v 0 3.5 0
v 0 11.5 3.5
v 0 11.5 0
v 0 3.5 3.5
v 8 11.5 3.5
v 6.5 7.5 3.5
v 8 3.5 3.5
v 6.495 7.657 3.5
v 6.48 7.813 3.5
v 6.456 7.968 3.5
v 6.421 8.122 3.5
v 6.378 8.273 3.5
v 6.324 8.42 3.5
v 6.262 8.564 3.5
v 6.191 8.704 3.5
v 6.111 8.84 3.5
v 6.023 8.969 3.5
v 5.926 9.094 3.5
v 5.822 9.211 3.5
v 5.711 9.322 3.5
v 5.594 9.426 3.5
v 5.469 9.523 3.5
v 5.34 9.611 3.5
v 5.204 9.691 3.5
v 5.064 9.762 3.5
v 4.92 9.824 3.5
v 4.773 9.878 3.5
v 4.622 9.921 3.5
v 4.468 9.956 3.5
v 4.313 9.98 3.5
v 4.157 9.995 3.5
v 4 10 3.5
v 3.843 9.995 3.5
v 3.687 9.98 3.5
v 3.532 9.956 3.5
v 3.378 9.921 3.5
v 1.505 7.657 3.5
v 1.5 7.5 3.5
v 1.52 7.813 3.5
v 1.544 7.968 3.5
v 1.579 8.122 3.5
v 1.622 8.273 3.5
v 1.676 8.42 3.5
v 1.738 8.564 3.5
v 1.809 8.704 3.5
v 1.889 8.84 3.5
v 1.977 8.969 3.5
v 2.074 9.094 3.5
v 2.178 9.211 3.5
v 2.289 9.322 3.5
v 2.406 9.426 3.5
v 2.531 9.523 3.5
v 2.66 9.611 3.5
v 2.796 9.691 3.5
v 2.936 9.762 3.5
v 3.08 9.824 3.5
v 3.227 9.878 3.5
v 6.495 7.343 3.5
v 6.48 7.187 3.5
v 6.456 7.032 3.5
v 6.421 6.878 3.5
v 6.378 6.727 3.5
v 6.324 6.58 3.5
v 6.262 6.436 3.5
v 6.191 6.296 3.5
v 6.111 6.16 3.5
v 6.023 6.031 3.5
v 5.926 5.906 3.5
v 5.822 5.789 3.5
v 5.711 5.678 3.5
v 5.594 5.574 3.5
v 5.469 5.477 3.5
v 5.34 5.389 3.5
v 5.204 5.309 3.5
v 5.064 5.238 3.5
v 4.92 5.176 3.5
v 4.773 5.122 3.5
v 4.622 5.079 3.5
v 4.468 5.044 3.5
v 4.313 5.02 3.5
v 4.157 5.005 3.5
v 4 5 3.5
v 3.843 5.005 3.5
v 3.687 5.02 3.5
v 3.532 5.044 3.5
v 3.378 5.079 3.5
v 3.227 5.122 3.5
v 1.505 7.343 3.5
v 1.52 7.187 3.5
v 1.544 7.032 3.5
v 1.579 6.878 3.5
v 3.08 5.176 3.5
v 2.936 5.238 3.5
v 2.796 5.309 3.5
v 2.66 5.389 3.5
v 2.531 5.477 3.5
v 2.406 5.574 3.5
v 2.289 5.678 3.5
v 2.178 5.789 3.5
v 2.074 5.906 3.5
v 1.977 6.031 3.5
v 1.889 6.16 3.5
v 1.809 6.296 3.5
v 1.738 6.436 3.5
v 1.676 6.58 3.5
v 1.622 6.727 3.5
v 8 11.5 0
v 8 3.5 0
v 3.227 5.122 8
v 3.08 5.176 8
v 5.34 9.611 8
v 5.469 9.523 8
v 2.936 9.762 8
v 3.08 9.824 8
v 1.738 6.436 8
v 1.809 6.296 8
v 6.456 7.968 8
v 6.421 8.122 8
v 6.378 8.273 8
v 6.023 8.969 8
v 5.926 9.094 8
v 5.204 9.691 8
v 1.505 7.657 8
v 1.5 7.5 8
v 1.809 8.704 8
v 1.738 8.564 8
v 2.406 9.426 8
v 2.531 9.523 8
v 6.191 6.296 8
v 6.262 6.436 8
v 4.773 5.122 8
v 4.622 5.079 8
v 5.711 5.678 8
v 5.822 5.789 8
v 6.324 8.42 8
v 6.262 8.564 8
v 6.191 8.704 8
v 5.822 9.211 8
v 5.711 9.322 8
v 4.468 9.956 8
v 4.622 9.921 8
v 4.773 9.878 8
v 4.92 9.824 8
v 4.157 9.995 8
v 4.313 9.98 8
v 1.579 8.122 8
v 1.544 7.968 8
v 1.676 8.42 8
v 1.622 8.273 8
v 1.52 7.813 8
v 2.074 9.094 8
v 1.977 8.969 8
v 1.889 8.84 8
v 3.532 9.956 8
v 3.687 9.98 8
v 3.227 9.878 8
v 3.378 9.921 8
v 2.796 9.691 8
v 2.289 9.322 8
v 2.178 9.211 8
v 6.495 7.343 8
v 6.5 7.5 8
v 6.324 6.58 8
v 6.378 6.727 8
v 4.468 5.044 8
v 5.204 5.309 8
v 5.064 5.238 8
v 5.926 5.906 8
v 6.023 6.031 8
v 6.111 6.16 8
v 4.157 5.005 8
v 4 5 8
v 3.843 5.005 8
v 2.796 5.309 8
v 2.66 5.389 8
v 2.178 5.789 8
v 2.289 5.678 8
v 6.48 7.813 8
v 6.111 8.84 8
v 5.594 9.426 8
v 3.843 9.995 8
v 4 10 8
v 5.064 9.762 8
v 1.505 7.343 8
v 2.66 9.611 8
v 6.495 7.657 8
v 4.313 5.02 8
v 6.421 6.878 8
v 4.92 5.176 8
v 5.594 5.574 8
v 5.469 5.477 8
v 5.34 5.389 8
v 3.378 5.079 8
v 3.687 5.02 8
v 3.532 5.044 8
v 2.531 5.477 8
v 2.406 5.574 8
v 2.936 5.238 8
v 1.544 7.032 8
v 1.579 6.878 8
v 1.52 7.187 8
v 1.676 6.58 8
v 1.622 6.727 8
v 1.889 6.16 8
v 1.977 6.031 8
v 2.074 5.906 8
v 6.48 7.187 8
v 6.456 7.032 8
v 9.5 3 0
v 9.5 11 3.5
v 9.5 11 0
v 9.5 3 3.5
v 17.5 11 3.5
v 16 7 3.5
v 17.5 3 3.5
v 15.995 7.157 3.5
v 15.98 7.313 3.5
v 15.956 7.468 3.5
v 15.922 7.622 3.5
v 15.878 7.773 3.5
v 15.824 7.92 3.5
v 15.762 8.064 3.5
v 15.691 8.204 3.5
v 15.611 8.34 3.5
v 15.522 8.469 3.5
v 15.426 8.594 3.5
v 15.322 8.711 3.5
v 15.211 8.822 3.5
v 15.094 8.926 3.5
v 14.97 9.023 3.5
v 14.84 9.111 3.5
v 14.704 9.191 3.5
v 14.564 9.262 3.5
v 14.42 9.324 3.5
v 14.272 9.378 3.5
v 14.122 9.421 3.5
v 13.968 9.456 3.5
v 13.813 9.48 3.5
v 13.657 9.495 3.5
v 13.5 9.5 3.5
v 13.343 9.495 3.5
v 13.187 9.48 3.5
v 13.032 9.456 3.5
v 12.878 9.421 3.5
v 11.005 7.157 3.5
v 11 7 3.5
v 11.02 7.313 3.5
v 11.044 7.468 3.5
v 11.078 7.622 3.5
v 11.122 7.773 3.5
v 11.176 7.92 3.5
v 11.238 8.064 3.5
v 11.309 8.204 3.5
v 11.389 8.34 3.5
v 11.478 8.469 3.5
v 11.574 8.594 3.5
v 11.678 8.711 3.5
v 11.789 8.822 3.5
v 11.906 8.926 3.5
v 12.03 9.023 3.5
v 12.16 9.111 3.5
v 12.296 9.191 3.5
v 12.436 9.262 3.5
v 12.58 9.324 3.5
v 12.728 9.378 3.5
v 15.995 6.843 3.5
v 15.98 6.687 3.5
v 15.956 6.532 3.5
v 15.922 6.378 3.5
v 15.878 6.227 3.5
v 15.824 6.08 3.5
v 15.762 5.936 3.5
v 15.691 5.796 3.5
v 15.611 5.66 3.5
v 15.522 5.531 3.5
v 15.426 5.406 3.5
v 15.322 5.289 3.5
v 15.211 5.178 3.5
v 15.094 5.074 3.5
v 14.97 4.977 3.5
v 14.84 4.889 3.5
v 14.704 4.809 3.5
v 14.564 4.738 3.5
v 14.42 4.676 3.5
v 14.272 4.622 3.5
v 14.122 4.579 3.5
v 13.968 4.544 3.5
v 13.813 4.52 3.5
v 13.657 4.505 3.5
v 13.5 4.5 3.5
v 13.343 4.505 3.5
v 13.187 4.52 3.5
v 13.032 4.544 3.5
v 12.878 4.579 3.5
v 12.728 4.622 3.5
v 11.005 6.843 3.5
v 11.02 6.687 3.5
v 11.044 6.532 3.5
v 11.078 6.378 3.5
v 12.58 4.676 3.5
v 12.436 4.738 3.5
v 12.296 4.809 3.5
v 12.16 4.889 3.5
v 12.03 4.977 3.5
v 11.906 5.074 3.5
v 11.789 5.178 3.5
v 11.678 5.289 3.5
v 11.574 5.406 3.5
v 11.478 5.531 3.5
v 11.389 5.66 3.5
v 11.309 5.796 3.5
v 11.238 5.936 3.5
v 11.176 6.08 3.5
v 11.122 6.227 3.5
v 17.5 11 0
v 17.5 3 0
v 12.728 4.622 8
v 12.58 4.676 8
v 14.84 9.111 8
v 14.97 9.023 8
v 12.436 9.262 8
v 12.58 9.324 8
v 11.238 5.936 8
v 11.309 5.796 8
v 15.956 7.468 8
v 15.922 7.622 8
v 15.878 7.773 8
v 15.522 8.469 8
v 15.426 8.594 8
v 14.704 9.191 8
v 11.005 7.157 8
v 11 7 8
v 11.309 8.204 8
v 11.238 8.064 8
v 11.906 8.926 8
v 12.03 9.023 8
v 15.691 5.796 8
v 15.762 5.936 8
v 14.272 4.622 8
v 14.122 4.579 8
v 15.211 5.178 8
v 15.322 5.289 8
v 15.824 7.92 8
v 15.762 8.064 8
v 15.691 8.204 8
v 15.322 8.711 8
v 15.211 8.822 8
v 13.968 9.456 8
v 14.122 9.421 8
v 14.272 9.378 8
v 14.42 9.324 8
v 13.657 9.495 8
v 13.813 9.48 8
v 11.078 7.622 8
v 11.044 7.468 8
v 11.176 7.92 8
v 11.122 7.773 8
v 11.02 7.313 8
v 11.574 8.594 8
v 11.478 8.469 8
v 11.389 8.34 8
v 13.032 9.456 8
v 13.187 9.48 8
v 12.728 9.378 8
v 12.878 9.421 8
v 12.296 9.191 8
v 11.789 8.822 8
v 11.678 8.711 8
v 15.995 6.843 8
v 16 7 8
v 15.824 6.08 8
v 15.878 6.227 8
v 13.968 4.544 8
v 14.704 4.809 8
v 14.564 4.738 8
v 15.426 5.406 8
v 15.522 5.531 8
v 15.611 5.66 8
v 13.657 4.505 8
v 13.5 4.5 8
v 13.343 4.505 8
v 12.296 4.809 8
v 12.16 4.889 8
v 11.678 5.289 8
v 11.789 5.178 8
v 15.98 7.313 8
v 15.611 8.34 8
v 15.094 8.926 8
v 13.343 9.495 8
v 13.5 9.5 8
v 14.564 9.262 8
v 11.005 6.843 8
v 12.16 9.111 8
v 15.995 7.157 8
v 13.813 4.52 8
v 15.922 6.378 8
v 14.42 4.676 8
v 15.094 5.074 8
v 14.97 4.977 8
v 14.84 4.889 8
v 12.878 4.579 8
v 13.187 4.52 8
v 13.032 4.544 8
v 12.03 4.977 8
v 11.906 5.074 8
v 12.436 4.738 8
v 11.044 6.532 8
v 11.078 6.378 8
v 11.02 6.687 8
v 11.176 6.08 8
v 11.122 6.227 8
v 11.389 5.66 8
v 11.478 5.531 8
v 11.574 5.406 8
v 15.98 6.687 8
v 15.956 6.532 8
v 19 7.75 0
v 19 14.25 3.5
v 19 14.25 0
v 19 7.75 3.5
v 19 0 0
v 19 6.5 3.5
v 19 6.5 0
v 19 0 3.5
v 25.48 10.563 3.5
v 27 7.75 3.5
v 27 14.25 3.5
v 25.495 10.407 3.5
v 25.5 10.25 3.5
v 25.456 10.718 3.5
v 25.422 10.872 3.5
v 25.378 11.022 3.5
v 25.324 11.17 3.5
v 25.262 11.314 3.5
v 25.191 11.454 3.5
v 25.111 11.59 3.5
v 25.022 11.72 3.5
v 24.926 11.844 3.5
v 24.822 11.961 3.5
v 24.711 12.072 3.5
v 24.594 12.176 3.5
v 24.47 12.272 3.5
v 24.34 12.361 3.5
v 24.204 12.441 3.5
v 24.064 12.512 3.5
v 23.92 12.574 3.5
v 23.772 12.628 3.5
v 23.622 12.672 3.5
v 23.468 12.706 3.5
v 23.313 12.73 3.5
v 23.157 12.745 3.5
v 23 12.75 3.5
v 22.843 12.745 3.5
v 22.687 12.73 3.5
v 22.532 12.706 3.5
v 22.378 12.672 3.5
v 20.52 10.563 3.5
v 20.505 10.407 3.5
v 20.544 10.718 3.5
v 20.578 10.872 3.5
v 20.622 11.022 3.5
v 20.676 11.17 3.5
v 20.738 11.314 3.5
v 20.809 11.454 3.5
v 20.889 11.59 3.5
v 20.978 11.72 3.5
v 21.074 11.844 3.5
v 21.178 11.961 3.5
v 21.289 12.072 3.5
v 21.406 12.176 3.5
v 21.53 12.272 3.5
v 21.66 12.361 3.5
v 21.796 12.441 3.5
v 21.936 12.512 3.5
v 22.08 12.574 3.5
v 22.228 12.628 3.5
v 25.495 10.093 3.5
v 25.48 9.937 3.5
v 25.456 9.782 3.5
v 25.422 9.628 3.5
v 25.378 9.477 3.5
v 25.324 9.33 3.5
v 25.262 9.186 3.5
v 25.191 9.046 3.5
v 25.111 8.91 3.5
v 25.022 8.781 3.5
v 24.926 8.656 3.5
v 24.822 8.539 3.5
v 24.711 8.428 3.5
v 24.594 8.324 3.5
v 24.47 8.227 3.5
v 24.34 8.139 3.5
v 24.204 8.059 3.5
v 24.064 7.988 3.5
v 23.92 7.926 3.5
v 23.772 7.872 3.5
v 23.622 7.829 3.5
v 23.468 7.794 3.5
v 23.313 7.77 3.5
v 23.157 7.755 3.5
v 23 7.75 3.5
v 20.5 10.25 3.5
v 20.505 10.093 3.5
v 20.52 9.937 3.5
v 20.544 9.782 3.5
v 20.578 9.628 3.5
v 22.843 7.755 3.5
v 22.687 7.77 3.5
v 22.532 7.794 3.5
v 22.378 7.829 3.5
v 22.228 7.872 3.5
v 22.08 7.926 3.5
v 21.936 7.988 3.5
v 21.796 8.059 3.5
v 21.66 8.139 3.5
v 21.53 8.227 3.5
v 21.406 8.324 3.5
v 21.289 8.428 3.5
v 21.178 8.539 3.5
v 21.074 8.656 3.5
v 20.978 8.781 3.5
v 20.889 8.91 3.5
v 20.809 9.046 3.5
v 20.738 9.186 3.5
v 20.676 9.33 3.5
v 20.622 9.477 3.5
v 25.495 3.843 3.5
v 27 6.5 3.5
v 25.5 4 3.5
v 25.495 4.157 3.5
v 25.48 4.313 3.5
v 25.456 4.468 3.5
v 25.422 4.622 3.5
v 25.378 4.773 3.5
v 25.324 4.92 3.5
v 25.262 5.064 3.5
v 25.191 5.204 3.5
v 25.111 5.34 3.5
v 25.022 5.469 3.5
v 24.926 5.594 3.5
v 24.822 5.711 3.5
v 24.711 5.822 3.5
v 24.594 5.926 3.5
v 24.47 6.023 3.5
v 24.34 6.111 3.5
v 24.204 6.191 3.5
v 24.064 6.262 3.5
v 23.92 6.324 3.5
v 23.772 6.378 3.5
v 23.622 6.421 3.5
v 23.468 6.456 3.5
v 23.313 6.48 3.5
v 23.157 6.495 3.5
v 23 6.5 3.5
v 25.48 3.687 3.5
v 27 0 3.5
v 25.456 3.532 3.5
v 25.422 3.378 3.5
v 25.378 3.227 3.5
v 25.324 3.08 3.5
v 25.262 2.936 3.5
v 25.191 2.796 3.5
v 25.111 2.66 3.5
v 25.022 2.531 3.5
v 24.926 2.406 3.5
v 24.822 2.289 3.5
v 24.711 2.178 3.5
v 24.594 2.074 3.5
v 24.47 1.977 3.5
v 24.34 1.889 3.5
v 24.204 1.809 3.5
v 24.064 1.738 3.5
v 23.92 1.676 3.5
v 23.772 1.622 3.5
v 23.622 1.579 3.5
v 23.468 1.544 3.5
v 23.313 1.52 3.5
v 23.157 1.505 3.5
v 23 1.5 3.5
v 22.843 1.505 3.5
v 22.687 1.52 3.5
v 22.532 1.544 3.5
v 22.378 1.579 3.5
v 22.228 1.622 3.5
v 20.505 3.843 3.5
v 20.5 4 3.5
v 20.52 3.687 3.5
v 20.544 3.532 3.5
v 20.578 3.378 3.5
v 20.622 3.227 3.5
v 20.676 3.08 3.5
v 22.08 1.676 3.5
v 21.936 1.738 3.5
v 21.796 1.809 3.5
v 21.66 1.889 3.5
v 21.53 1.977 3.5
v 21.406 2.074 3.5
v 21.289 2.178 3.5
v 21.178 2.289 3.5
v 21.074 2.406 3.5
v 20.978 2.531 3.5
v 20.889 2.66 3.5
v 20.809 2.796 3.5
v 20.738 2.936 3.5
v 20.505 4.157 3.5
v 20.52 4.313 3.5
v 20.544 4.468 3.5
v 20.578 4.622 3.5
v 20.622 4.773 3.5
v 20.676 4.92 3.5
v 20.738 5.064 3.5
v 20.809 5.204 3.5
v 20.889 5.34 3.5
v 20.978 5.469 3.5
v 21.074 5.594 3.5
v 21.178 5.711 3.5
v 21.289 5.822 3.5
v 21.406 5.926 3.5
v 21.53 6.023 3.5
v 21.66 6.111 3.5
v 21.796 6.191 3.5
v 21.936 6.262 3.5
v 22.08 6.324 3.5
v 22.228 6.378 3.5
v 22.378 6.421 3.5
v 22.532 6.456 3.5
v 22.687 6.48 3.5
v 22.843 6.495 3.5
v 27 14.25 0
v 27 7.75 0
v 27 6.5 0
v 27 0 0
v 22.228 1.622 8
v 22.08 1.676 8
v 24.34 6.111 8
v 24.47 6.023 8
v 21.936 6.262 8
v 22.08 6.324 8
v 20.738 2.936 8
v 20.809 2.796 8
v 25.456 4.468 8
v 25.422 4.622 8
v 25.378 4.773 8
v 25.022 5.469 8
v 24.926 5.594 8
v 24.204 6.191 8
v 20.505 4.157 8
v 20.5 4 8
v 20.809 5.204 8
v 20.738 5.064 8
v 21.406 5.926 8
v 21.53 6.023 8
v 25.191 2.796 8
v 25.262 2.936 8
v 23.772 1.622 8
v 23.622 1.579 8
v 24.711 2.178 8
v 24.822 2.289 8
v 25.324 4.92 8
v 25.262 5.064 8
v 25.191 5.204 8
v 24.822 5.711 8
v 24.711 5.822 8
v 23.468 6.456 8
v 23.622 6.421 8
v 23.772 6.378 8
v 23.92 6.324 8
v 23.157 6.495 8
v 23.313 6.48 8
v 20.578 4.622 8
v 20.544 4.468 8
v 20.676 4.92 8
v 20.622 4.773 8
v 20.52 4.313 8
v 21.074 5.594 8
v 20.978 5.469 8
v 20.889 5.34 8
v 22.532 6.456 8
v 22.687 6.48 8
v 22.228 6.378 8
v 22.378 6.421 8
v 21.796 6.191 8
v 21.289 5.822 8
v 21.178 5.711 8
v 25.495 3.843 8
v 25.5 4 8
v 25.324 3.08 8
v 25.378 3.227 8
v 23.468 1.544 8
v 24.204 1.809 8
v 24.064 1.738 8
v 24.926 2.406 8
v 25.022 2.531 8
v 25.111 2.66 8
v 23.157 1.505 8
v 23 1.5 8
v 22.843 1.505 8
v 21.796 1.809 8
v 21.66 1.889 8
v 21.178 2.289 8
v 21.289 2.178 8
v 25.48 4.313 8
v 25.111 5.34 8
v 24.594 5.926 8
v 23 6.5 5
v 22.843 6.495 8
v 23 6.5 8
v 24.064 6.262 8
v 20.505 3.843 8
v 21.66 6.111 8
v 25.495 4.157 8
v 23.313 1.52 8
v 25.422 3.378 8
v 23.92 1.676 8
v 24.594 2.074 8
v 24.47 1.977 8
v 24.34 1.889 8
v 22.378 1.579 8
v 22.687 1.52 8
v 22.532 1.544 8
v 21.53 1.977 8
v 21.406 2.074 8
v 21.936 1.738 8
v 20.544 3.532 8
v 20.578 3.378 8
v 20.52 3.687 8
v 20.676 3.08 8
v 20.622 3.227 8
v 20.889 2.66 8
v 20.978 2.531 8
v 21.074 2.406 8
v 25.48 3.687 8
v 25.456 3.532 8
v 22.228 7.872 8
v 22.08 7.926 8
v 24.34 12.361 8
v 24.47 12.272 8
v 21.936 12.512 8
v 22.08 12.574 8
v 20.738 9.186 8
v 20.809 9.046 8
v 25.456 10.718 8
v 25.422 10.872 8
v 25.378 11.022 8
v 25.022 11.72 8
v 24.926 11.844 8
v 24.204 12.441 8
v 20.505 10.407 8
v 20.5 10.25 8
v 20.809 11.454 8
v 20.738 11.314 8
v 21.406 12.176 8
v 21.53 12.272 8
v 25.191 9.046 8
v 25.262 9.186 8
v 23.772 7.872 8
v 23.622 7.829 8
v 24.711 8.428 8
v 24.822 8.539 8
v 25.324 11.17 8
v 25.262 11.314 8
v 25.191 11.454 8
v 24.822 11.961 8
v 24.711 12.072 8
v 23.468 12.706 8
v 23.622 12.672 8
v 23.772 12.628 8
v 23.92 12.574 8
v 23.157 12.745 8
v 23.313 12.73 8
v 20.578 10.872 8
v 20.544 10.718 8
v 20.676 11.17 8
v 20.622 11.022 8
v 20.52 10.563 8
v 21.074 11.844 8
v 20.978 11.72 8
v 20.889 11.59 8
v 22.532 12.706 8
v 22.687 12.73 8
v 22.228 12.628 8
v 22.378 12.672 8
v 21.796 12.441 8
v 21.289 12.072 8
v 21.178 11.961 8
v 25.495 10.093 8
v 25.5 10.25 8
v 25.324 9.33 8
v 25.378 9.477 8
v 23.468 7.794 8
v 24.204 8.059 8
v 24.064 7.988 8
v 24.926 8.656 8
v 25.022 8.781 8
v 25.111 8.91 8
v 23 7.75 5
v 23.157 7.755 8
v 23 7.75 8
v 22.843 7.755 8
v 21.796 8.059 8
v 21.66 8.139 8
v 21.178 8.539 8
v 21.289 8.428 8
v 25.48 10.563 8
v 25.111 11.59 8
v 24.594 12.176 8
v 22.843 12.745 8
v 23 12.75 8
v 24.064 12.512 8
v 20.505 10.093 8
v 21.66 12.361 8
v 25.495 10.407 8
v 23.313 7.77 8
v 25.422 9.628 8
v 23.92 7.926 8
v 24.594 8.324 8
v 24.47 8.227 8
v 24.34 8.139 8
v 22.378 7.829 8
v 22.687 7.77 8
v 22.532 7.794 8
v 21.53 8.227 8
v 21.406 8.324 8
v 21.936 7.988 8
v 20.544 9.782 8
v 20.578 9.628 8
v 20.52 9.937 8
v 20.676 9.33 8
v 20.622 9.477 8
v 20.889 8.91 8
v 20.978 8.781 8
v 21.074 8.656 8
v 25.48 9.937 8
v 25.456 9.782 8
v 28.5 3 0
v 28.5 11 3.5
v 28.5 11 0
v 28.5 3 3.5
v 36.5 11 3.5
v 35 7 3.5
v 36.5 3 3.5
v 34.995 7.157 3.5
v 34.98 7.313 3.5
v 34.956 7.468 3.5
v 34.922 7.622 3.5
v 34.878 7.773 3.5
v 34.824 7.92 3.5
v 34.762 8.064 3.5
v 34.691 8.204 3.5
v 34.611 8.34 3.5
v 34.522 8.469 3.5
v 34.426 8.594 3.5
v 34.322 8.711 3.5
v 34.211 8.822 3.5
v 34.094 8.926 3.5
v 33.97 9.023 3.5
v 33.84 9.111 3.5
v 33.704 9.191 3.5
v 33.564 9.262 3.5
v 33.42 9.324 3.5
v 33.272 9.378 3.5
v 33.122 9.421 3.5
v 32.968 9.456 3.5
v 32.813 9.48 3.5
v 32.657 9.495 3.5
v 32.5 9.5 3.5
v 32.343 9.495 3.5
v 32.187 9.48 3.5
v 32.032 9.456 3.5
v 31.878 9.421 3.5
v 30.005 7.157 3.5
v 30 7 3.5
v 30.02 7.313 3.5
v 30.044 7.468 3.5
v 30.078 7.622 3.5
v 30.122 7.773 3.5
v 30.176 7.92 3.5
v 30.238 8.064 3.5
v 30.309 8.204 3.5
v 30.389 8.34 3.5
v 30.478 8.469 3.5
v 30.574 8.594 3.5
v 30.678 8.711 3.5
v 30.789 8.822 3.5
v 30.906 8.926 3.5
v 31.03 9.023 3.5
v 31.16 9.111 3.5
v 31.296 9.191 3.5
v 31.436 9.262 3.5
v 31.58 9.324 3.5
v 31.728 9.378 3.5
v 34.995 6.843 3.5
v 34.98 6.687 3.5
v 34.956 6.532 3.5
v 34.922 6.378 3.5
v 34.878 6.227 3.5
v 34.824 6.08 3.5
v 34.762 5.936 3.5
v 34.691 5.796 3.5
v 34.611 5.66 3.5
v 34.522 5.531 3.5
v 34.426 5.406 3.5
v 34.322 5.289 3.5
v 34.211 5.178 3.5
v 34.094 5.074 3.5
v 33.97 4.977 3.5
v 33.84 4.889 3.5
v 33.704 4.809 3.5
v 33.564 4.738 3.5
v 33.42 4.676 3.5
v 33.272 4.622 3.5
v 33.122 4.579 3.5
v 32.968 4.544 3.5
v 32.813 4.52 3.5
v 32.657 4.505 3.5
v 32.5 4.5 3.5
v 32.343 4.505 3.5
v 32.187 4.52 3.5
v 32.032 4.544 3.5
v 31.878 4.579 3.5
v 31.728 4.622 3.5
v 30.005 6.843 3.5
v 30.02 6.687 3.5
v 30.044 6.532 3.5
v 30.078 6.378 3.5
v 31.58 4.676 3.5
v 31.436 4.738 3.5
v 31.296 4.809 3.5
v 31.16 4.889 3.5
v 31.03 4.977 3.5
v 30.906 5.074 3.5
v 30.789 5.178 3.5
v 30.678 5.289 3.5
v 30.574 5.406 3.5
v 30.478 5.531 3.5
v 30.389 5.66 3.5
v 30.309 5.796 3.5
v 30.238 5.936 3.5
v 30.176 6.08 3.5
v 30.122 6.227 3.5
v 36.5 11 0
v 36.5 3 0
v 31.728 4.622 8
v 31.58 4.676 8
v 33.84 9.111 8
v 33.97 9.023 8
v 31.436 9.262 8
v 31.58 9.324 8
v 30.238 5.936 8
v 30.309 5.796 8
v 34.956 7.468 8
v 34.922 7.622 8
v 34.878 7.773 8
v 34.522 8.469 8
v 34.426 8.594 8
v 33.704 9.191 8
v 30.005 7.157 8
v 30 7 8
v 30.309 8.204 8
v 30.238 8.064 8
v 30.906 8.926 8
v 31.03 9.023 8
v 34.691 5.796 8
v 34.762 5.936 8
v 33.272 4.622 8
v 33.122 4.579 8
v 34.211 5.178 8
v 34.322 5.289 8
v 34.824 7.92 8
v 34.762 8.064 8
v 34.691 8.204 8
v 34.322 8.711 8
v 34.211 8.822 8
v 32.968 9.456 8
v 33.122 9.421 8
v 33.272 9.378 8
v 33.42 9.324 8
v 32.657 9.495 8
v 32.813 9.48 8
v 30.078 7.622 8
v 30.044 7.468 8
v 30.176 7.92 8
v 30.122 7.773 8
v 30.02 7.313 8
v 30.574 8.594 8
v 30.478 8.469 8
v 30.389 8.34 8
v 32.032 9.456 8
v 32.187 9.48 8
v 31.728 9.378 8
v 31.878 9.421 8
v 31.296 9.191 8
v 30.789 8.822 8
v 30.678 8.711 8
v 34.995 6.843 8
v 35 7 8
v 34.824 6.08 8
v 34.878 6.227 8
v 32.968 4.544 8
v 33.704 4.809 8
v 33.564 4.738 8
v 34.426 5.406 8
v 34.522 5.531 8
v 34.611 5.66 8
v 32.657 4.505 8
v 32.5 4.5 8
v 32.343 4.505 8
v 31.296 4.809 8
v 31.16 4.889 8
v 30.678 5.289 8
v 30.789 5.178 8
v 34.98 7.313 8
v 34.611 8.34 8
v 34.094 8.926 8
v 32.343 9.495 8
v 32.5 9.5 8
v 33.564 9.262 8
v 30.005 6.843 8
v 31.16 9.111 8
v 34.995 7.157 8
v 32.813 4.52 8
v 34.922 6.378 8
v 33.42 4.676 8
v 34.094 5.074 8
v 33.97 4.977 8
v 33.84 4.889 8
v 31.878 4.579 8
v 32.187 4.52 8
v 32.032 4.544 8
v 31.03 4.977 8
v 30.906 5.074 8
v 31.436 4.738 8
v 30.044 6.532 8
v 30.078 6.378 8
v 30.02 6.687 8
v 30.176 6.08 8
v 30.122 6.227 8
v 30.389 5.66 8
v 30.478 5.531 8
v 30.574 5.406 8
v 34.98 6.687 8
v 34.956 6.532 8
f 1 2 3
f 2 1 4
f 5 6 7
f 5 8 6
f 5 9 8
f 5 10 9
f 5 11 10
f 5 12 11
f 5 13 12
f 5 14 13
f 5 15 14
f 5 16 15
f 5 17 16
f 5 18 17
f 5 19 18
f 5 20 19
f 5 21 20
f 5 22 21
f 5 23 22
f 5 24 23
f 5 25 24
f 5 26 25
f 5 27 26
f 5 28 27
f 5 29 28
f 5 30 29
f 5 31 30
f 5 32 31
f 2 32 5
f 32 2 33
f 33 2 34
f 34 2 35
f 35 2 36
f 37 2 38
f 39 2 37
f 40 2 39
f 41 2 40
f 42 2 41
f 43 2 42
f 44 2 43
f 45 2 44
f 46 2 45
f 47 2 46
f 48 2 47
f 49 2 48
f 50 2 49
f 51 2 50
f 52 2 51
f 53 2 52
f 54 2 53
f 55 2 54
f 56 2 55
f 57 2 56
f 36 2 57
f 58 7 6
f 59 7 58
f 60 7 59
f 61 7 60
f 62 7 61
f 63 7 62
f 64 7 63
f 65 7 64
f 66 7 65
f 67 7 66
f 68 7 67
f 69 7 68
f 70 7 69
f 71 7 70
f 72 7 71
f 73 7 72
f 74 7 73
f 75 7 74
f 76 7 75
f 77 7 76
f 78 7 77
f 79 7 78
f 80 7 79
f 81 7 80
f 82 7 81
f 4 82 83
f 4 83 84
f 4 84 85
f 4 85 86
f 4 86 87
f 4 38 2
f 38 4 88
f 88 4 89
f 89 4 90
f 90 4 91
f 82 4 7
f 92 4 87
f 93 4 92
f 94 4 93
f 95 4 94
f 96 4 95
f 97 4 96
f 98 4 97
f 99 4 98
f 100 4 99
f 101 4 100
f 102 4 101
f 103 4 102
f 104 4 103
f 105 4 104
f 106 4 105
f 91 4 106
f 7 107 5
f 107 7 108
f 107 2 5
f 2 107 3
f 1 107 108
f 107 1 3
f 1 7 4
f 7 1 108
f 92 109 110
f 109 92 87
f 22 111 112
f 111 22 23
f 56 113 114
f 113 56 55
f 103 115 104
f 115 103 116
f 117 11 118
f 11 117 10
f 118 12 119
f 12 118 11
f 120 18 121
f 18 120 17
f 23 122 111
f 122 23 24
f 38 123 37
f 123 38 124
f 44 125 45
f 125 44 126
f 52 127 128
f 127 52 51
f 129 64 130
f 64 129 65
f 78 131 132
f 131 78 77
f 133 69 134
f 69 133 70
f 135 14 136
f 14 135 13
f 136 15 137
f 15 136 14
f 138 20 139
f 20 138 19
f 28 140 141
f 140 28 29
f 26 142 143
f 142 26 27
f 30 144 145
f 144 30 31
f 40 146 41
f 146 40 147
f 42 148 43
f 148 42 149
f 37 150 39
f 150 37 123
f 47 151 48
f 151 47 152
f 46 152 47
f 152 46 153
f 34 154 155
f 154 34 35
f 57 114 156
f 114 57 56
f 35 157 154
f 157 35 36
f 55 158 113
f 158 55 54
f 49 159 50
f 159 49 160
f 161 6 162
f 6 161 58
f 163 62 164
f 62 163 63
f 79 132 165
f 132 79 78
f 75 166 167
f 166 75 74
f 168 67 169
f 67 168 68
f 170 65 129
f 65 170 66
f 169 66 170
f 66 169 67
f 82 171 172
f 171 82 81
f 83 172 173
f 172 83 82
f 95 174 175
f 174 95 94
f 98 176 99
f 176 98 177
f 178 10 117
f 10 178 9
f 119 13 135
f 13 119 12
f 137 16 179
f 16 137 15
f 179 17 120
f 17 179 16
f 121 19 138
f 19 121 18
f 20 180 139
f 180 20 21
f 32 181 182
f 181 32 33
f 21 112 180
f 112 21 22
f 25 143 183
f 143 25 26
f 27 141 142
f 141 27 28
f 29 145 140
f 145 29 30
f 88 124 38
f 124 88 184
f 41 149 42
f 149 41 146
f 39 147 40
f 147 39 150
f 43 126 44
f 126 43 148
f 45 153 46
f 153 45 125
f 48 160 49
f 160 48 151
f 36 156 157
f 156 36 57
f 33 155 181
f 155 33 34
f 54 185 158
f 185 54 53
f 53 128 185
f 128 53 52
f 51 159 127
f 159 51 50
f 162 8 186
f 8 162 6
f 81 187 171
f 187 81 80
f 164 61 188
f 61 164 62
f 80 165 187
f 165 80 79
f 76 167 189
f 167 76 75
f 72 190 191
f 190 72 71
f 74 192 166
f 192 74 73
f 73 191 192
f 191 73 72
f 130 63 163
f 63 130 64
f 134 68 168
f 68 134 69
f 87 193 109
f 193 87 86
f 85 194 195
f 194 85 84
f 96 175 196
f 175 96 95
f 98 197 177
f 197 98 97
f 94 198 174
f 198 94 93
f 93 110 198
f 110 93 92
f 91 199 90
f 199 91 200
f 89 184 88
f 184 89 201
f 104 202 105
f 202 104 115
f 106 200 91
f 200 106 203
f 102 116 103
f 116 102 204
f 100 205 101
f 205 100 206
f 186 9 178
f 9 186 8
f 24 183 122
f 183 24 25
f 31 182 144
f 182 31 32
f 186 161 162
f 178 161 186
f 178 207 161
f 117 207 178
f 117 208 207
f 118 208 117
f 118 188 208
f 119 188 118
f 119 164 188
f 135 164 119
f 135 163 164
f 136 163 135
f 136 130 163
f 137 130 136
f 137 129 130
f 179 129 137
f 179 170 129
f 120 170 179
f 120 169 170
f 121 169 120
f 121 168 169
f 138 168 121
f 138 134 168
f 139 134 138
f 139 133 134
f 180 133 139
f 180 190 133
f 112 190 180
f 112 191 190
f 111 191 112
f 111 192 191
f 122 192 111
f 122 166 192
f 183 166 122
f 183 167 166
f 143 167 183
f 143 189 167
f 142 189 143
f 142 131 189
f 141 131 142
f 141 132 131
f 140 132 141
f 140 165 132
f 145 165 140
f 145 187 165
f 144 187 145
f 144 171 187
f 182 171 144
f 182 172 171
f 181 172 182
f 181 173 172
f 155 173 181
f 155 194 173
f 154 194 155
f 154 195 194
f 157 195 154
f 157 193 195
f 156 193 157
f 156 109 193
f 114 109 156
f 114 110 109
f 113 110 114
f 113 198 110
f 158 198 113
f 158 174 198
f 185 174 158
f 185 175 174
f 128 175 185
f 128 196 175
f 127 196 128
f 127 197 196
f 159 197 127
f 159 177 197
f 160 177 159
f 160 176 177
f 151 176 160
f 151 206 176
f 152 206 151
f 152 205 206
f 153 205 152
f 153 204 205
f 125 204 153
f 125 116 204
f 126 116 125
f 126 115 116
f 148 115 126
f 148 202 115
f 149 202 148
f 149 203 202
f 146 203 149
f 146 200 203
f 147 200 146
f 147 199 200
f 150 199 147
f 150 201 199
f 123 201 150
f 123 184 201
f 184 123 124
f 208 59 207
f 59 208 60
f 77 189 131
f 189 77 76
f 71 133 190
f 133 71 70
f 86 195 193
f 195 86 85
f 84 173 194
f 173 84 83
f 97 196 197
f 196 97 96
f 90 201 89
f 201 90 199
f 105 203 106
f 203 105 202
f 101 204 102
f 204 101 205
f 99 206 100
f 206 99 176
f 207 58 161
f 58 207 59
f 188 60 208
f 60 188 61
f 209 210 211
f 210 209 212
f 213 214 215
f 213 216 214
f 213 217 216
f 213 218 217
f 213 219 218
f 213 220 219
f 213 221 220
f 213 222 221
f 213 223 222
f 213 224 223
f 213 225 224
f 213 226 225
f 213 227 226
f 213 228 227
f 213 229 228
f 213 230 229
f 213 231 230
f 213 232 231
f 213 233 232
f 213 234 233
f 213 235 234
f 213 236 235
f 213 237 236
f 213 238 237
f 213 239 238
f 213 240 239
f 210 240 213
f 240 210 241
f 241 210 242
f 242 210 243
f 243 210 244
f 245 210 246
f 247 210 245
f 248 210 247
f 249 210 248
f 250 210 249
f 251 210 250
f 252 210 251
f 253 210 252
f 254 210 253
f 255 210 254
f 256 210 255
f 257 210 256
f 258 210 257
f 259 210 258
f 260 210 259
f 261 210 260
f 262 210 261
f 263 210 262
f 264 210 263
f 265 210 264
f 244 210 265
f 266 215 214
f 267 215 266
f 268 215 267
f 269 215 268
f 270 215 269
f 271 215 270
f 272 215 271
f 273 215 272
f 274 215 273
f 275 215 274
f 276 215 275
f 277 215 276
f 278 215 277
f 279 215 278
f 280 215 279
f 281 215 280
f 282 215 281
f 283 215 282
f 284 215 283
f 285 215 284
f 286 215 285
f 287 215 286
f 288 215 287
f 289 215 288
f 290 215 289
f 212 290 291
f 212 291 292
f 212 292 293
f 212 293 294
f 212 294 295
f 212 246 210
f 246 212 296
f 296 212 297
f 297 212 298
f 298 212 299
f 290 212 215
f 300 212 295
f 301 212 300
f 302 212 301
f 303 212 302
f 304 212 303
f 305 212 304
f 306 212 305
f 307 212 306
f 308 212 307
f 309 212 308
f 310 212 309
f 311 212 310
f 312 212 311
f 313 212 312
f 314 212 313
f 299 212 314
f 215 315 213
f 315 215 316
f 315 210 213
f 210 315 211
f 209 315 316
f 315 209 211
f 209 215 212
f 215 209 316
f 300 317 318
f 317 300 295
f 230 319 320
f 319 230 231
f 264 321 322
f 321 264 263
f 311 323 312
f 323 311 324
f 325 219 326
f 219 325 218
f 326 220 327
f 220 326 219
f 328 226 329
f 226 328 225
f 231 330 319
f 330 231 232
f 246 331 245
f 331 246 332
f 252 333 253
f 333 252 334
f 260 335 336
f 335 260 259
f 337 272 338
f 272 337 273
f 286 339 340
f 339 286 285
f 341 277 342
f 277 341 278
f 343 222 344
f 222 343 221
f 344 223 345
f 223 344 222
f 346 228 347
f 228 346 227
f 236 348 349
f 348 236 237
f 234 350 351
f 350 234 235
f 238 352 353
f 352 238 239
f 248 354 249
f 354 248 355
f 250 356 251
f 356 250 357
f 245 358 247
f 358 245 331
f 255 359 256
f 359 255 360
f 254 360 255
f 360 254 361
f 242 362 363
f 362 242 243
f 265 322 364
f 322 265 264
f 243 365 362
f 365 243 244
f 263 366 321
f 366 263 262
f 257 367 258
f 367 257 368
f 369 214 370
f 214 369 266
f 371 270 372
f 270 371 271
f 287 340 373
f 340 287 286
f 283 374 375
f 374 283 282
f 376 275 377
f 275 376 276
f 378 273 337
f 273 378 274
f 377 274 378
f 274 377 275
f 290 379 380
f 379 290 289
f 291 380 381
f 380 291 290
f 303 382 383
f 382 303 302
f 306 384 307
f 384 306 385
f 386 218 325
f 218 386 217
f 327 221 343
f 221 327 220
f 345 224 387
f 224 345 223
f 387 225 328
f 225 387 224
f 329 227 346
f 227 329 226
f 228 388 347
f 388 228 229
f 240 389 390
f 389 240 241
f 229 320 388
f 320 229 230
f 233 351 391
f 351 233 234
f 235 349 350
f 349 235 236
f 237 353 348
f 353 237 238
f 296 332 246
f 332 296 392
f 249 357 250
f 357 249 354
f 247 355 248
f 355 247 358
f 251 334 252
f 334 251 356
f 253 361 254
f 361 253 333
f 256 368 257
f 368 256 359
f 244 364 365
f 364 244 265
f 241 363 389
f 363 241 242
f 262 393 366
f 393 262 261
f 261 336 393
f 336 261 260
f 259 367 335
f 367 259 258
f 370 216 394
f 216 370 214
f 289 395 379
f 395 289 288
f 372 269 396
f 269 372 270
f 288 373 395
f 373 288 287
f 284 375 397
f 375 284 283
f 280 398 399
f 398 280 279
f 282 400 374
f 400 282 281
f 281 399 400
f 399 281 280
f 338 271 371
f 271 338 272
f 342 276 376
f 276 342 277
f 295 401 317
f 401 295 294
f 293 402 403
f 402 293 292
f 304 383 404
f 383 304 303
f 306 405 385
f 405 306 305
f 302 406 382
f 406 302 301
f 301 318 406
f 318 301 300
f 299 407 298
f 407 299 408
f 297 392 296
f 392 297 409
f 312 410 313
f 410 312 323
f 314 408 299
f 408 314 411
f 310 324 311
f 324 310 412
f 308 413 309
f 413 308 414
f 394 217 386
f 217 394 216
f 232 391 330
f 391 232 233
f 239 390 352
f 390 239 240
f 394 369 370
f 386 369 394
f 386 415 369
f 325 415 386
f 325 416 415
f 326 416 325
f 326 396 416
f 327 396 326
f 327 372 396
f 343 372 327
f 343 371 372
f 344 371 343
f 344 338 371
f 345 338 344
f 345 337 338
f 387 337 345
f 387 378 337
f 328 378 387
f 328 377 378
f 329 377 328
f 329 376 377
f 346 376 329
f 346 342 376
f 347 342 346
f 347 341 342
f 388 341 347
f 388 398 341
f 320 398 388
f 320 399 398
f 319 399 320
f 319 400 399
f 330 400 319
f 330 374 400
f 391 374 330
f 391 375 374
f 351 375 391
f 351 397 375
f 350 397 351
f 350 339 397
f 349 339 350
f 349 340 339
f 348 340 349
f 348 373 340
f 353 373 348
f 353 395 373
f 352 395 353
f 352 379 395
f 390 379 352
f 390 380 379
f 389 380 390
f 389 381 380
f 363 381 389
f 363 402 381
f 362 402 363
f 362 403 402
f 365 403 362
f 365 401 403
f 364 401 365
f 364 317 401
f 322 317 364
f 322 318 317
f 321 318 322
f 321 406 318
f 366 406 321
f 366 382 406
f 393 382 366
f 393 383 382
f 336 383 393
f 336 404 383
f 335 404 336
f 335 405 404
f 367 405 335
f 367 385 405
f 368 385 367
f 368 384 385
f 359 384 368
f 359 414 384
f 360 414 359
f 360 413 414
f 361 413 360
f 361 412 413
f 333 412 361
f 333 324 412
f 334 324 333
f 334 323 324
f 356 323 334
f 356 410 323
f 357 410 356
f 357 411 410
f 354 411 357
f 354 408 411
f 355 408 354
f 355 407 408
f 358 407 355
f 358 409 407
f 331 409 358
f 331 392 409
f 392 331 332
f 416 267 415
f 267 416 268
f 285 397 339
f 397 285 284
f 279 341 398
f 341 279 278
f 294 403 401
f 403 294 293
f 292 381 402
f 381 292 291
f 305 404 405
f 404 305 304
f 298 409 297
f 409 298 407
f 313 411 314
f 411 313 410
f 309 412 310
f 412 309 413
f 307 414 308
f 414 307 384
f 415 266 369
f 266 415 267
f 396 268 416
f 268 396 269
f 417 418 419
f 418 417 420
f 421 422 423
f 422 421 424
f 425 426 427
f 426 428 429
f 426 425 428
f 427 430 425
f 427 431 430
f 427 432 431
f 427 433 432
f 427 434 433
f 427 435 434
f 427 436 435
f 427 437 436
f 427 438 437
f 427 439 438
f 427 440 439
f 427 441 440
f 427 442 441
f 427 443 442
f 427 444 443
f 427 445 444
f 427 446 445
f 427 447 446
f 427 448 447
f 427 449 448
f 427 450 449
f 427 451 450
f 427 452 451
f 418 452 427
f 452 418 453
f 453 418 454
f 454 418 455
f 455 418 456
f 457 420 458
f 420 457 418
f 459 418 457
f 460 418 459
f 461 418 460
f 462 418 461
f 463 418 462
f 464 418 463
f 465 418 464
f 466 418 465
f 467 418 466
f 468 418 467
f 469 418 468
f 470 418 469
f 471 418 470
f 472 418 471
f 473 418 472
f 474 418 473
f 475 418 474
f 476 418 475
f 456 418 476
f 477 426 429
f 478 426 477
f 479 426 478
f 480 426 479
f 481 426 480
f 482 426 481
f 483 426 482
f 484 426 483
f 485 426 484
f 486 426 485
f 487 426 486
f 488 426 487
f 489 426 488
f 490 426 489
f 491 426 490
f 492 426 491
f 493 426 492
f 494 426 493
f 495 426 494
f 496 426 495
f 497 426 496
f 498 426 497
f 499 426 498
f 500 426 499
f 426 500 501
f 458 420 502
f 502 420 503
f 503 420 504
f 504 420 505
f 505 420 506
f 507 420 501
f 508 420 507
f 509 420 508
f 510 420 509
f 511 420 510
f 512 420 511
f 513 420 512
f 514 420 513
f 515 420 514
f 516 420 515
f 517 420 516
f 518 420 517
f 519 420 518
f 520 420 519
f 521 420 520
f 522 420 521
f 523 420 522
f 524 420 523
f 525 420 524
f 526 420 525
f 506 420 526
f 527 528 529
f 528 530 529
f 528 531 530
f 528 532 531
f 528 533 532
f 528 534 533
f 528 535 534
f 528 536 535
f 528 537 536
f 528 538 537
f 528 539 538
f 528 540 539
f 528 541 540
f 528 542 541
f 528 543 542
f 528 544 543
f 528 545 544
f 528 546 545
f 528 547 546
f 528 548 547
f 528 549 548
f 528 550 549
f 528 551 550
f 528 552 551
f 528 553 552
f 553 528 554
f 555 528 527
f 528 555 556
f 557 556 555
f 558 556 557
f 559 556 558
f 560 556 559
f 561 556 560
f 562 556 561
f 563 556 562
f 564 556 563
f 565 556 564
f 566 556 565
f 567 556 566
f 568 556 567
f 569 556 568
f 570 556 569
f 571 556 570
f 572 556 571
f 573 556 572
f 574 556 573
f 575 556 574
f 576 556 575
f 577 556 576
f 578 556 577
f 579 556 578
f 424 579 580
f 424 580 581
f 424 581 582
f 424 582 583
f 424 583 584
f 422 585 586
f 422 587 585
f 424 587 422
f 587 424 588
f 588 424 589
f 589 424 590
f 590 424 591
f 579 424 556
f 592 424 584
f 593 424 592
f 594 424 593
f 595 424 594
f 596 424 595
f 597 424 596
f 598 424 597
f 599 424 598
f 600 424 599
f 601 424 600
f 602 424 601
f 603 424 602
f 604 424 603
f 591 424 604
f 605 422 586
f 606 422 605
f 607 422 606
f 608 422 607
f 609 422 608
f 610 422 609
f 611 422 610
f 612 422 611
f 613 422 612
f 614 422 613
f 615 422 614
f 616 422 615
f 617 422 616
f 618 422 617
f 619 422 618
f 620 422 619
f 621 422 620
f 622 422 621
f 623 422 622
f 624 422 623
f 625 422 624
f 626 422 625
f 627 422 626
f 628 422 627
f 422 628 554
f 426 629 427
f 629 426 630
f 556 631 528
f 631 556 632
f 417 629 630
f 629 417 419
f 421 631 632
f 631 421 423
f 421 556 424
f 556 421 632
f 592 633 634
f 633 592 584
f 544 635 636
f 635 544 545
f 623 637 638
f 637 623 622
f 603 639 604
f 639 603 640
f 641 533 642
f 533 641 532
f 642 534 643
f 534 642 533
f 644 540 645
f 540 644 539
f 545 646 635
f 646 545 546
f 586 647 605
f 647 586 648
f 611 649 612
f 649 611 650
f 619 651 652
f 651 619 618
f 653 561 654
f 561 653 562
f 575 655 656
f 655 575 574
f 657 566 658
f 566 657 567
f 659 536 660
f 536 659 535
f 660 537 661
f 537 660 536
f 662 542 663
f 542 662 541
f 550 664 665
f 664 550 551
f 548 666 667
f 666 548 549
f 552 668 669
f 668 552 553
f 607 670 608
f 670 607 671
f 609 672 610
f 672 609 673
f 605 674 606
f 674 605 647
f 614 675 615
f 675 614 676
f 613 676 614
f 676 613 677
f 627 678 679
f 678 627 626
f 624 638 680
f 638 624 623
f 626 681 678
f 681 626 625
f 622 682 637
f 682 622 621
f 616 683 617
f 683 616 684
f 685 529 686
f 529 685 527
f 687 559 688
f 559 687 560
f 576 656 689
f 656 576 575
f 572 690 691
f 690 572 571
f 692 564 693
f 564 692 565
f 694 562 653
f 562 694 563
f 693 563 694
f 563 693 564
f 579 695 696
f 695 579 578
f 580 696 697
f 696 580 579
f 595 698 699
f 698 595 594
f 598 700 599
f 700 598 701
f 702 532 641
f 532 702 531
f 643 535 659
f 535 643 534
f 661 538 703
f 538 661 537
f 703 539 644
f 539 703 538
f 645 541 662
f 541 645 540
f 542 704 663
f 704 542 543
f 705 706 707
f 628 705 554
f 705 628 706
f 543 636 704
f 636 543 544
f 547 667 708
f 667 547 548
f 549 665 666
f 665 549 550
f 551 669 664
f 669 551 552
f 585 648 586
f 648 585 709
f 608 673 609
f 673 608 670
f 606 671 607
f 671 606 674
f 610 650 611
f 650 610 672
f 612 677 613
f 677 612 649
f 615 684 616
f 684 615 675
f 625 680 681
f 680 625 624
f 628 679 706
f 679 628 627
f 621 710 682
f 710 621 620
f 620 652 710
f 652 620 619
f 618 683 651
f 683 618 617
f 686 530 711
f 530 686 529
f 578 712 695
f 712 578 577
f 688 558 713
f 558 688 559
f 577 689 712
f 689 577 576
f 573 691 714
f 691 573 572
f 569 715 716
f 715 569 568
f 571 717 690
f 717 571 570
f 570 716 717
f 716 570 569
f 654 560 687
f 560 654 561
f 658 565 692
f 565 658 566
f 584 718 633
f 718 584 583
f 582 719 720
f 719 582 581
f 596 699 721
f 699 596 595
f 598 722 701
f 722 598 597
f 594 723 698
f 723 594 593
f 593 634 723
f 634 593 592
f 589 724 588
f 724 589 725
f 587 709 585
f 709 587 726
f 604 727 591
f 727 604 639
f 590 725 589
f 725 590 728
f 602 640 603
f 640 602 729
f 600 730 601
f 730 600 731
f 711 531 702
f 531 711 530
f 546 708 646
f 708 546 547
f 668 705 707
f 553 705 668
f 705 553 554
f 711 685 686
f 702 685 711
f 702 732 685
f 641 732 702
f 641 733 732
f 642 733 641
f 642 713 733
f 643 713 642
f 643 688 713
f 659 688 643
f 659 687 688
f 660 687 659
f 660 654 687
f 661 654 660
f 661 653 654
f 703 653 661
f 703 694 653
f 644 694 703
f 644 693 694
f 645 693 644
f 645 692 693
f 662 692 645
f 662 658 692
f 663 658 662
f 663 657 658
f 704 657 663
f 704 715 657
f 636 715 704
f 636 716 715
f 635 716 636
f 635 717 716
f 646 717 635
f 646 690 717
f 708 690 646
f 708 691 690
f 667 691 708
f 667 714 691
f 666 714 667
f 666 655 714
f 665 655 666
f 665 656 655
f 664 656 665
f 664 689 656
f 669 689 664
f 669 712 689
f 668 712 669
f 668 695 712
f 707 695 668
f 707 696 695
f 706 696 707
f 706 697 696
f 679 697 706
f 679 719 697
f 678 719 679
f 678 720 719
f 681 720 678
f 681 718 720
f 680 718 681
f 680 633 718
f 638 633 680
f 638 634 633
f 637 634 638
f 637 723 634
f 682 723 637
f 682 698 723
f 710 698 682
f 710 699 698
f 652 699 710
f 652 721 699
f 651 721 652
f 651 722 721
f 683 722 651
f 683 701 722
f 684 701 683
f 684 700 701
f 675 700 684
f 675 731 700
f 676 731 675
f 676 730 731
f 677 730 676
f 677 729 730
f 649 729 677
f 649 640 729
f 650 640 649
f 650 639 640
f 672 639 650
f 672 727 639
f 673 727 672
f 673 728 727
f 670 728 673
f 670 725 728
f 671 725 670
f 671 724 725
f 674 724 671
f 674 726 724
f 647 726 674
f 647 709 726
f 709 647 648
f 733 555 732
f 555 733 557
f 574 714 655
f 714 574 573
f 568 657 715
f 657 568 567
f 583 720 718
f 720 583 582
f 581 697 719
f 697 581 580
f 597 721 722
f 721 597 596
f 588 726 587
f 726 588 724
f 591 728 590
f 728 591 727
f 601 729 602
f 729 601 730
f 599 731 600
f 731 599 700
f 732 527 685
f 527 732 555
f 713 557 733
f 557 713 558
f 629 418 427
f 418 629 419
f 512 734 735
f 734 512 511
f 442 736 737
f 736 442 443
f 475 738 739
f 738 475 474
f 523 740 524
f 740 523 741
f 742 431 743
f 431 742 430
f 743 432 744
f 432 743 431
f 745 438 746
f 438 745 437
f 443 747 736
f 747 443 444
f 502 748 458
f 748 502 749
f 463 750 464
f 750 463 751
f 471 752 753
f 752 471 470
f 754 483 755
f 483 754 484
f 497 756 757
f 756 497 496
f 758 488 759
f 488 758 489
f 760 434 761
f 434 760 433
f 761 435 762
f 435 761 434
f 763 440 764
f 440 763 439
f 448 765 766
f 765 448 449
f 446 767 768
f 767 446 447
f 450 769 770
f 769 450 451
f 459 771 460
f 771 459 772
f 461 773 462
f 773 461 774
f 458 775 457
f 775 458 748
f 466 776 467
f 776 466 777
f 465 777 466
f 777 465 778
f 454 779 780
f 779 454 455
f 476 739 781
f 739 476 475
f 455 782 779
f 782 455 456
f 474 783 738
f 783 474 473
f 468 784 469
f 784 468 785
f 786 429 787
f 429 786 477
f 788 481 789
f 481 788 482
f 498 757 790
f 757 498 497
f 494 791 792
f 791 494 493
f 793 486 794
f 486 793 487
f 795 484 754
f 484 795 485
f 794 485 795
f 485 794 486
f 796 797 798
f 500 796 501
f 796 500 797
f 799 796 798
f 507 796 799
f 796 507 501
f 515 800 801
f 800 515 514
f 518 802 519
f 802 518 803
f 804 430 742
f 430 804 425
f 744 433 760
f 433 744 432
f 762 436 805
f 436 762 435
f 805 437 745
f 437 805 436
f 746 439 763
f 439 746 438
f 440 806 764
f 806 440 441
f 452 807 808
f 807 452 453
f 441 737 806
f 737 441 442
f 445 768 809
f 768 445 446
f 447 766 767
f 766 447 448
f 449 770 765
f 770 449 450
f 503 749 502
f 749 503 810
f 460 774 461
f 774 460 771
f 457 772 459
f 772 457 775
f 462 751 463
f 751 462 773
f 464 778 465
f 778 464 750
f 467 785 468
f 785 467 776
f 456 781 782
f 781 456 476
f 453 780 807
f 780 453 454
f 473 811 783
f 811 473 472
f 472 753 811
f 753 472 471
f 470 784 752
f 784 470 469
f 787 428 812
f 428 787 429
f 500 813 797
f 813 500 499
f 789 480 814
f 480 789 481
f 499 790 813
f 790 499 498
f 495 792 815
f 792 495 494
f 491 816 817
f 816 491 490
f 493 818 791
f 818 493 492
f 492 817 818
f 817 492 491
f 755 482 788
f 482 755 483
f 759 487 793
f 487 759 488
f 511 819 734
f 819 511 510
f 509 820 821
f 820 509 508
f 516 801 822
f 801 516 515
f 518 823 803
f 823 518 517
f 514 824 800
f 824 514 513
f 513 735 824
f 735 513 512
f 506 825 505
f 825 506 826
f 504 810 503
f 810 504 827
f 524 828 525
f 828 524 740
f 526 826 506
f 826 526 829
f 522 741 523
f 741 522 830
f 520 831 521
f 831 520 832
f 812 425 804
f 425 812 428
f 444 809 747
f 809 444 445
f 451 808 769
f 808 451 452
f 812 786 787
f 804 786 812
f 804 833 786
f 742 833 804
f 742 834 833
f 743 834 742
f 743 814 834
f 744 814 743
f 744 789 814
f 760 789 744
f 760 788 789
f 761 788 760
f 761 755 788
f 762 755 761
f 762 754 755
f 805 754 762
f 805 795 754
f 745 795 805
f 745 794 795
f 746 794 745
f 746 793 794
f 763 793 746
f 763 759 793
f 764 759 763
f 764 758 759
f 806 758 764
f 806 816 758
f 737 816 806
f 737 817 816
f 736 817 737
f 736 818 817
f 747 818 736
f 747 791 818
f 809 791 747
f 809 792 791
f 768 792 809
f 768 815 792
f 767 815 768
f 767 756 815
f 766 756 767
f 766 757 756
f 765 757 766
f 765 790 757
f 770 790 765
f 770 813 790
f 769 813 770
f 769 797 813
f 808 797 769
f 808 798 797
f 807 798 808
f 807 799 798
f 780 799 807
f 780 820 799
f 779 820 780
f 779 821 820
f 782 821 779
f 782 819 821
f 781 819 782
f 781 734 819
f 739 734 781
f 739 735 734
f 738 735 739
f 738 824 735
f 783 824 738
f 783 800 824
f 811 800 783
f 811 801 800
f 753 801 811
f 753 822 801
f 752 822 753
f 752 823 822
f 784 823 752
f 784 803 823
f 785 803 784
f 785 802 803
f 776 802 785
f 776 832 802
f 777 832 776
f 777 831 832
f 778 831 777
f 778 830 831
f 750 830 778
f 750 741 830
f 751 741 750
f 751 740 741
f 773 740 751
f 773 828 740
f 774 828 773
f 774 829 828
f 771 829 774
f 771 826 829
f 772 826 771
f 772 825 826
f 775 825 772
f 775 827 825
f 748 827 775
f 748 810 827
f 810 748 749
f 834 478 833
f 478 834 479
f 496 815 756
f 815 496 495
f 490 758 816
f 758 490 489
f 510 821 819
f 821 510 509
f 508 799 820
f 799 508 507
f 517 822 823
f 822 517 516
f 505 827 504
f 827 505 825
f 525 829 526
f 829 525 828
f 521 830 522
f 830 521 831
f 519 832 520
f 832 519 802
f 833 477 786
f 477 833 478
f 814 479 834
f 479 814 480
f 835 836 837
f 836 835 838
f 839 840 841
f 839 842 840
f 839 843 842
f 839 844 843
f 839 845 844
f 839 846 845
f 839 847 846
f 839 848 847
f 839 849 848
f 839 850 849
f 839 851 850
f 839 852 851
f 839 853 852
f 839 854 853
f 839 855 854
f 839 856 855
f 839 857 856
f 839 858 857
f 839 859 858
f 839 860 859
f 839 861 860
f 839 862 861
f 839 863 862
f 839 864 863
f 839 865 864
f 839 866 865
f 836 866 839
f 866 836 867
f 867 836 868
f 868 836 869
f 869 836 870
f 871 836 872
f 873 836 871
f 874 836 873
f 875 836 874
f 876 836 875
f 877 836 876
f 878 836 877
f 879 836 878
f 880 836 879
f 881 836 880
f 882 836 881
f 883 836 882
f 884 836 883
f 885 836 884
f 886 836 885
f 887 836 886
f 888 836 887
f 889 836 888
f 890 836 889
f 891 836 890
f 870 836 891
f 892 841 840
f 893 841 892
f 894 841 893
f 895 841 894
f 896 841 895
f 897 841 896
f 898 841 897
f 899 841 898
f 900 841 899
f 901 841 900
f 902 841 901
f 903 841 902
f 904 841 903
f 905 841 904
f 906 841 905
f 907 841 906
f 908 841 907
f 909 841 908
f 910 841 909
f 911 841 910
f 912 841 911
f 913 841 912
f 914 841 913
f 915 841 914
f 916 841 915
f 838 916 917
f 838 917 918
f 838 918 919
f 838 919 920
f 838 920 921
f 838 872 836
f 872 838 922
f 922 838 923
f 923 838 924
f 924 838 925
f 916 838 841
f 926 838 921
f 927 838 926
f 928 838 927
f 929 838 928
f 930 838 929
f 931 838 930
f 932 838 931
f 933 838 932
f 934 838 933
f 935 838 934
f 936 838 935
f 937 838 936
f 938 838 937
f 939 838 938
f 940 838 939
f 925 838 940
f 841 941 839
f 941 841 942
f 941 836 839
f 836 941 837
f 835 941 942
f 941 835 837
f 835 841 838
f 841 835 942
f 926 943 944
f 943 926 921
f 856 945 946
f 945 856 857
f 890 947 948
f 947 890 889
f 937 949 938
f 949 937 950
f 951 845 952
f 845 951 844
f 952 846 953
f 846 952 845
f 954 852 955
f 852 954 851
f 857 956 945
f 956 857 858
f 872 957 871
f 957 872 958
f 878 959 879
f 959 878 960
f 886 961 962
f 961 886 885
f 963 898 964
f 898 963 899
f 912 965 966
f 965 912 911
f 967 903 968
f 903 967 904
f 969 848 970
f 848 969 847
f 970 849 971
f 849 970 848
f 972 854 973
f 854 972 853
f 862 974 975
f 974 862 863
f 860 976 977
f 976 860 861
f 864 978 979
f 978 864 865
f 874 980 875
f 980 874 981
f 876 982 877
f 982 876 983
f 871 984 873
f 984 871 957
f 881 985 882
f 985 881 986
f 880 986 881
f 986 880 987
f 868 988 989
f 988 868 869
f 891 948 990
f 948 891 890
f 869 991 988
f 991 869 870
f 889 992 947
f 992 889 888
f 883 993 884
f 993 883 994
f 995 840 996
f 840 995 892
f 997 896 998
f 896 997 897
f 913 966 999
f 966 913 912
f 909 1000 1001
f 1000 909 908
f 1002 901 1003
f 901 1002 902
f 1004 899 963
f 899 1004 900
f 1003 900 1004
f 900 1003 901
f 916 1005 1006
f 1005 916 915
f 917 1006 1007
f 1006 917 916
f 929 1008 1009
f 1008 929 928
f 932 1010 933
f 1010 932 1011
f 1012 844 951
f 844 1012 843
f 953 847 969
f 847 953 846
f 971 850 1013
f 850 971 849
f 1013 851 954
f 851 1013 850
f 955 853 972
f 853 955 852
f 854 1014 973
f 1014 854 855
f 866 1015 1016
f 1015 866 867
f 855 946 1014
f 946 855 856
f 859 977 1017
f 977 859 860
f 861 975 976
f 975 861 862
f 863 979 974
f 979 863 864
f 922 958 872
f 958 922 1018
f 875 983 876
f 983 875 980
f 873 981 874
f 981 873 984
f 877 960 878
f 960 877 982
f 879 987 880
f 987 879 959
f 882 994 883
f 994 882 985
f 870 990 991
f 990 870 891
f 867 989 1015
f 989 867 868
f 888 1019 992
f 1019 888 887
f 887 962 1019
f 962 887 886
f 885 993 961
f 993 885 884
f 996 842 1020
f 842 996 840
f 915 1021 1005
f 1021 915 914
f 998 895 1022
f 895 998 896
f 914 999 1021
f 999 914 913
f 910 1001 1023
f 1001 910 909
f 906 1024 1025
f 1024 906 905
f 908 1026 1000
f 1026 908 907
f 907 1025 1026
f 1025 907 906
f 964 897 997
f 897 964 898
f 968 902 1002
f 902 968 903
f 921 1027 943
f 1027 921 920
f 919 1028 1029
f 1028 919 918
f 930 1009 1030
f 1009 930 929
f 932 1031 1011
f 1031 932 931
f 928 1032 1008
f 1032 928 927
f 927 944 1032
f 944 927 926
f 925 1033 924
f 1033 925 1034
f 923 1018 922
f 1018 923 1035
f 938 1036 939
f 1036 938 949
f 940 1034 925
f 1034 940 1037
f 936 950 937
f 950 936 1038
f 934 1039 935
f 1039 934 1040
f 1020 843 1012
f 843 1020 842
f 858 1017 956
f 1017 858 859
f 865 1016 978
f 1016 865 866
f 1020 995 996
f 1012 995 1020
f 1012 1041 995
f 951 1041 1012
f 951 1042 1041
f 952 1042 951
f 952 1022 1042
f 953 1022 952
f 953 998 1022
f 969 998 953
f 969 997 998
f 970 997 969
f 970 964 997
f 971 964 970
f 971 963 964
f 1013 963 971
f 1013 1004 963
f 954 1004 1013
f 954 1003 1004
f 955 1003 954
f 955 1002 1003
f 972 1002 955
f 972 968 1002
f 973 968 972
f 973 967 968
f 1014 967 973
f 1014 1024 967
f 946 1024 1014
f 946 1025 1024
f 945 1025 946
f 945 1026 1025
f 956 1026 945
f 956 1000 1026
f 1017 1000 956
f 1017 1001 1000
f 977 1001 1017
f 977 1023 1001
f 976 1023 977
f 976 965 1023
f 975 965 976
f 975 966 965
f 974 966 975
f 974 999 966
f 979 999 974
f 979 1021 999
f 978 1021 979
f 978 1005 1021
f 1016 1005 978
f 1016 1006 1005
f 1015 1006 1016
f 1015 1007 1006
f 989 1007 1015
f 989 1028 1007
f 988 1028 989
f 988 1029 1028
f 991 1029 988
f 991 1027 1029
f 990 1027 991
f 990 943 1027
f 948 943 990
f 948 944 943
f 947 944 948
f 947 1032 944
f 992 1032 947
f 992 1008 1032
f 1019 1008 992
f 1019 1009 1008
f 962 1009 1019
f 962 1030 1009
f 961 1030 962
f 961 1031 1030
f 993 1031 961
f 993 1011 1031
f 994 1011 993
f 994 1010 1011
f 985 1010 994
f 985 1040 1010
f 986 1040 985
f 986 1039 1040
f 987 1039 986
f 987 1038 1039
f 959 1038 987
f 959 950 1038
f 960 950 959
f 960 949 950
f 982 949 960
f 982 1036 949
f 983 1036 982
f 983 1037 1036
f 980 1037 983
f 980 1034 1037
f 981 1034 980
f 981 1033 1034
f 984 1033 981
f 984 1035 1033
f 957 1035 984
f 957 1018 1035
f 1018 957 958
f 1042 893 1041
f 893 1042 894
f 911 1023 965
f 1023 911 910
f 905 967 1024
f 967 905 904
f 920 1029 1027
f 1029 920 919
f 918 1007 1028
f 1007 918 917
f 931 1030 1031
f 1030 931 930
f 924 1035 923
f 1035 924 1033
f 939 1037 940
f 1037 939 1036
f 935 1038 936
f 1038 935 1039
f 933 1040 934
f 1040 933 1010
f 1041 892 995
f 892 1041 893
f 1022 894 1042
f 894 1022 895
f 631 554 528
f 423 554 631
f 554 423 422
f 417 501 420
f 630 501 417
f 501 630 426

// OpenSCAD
$fn=100;

module ButtonExtender() {
    cube([8,8,3.5]);
    translate([4,4,0])cylinder(d=5,h=8);
}

module Cross() {
    difference() {
        union() {
            translate([0,3.5,0])ButtonExtender(); // Select
            // Cross
            translate([9.5,3,0])ButtonExtender();
            translate([19,0,0])ButtonExtender();
            translate([19,6.25,0])ButtonExtender();
            translate([28.5,3,0])ButtonExtender();
        }
        translate([18,6.5,-1])cube([10,1.25,6]);
    }
}
Cross();
